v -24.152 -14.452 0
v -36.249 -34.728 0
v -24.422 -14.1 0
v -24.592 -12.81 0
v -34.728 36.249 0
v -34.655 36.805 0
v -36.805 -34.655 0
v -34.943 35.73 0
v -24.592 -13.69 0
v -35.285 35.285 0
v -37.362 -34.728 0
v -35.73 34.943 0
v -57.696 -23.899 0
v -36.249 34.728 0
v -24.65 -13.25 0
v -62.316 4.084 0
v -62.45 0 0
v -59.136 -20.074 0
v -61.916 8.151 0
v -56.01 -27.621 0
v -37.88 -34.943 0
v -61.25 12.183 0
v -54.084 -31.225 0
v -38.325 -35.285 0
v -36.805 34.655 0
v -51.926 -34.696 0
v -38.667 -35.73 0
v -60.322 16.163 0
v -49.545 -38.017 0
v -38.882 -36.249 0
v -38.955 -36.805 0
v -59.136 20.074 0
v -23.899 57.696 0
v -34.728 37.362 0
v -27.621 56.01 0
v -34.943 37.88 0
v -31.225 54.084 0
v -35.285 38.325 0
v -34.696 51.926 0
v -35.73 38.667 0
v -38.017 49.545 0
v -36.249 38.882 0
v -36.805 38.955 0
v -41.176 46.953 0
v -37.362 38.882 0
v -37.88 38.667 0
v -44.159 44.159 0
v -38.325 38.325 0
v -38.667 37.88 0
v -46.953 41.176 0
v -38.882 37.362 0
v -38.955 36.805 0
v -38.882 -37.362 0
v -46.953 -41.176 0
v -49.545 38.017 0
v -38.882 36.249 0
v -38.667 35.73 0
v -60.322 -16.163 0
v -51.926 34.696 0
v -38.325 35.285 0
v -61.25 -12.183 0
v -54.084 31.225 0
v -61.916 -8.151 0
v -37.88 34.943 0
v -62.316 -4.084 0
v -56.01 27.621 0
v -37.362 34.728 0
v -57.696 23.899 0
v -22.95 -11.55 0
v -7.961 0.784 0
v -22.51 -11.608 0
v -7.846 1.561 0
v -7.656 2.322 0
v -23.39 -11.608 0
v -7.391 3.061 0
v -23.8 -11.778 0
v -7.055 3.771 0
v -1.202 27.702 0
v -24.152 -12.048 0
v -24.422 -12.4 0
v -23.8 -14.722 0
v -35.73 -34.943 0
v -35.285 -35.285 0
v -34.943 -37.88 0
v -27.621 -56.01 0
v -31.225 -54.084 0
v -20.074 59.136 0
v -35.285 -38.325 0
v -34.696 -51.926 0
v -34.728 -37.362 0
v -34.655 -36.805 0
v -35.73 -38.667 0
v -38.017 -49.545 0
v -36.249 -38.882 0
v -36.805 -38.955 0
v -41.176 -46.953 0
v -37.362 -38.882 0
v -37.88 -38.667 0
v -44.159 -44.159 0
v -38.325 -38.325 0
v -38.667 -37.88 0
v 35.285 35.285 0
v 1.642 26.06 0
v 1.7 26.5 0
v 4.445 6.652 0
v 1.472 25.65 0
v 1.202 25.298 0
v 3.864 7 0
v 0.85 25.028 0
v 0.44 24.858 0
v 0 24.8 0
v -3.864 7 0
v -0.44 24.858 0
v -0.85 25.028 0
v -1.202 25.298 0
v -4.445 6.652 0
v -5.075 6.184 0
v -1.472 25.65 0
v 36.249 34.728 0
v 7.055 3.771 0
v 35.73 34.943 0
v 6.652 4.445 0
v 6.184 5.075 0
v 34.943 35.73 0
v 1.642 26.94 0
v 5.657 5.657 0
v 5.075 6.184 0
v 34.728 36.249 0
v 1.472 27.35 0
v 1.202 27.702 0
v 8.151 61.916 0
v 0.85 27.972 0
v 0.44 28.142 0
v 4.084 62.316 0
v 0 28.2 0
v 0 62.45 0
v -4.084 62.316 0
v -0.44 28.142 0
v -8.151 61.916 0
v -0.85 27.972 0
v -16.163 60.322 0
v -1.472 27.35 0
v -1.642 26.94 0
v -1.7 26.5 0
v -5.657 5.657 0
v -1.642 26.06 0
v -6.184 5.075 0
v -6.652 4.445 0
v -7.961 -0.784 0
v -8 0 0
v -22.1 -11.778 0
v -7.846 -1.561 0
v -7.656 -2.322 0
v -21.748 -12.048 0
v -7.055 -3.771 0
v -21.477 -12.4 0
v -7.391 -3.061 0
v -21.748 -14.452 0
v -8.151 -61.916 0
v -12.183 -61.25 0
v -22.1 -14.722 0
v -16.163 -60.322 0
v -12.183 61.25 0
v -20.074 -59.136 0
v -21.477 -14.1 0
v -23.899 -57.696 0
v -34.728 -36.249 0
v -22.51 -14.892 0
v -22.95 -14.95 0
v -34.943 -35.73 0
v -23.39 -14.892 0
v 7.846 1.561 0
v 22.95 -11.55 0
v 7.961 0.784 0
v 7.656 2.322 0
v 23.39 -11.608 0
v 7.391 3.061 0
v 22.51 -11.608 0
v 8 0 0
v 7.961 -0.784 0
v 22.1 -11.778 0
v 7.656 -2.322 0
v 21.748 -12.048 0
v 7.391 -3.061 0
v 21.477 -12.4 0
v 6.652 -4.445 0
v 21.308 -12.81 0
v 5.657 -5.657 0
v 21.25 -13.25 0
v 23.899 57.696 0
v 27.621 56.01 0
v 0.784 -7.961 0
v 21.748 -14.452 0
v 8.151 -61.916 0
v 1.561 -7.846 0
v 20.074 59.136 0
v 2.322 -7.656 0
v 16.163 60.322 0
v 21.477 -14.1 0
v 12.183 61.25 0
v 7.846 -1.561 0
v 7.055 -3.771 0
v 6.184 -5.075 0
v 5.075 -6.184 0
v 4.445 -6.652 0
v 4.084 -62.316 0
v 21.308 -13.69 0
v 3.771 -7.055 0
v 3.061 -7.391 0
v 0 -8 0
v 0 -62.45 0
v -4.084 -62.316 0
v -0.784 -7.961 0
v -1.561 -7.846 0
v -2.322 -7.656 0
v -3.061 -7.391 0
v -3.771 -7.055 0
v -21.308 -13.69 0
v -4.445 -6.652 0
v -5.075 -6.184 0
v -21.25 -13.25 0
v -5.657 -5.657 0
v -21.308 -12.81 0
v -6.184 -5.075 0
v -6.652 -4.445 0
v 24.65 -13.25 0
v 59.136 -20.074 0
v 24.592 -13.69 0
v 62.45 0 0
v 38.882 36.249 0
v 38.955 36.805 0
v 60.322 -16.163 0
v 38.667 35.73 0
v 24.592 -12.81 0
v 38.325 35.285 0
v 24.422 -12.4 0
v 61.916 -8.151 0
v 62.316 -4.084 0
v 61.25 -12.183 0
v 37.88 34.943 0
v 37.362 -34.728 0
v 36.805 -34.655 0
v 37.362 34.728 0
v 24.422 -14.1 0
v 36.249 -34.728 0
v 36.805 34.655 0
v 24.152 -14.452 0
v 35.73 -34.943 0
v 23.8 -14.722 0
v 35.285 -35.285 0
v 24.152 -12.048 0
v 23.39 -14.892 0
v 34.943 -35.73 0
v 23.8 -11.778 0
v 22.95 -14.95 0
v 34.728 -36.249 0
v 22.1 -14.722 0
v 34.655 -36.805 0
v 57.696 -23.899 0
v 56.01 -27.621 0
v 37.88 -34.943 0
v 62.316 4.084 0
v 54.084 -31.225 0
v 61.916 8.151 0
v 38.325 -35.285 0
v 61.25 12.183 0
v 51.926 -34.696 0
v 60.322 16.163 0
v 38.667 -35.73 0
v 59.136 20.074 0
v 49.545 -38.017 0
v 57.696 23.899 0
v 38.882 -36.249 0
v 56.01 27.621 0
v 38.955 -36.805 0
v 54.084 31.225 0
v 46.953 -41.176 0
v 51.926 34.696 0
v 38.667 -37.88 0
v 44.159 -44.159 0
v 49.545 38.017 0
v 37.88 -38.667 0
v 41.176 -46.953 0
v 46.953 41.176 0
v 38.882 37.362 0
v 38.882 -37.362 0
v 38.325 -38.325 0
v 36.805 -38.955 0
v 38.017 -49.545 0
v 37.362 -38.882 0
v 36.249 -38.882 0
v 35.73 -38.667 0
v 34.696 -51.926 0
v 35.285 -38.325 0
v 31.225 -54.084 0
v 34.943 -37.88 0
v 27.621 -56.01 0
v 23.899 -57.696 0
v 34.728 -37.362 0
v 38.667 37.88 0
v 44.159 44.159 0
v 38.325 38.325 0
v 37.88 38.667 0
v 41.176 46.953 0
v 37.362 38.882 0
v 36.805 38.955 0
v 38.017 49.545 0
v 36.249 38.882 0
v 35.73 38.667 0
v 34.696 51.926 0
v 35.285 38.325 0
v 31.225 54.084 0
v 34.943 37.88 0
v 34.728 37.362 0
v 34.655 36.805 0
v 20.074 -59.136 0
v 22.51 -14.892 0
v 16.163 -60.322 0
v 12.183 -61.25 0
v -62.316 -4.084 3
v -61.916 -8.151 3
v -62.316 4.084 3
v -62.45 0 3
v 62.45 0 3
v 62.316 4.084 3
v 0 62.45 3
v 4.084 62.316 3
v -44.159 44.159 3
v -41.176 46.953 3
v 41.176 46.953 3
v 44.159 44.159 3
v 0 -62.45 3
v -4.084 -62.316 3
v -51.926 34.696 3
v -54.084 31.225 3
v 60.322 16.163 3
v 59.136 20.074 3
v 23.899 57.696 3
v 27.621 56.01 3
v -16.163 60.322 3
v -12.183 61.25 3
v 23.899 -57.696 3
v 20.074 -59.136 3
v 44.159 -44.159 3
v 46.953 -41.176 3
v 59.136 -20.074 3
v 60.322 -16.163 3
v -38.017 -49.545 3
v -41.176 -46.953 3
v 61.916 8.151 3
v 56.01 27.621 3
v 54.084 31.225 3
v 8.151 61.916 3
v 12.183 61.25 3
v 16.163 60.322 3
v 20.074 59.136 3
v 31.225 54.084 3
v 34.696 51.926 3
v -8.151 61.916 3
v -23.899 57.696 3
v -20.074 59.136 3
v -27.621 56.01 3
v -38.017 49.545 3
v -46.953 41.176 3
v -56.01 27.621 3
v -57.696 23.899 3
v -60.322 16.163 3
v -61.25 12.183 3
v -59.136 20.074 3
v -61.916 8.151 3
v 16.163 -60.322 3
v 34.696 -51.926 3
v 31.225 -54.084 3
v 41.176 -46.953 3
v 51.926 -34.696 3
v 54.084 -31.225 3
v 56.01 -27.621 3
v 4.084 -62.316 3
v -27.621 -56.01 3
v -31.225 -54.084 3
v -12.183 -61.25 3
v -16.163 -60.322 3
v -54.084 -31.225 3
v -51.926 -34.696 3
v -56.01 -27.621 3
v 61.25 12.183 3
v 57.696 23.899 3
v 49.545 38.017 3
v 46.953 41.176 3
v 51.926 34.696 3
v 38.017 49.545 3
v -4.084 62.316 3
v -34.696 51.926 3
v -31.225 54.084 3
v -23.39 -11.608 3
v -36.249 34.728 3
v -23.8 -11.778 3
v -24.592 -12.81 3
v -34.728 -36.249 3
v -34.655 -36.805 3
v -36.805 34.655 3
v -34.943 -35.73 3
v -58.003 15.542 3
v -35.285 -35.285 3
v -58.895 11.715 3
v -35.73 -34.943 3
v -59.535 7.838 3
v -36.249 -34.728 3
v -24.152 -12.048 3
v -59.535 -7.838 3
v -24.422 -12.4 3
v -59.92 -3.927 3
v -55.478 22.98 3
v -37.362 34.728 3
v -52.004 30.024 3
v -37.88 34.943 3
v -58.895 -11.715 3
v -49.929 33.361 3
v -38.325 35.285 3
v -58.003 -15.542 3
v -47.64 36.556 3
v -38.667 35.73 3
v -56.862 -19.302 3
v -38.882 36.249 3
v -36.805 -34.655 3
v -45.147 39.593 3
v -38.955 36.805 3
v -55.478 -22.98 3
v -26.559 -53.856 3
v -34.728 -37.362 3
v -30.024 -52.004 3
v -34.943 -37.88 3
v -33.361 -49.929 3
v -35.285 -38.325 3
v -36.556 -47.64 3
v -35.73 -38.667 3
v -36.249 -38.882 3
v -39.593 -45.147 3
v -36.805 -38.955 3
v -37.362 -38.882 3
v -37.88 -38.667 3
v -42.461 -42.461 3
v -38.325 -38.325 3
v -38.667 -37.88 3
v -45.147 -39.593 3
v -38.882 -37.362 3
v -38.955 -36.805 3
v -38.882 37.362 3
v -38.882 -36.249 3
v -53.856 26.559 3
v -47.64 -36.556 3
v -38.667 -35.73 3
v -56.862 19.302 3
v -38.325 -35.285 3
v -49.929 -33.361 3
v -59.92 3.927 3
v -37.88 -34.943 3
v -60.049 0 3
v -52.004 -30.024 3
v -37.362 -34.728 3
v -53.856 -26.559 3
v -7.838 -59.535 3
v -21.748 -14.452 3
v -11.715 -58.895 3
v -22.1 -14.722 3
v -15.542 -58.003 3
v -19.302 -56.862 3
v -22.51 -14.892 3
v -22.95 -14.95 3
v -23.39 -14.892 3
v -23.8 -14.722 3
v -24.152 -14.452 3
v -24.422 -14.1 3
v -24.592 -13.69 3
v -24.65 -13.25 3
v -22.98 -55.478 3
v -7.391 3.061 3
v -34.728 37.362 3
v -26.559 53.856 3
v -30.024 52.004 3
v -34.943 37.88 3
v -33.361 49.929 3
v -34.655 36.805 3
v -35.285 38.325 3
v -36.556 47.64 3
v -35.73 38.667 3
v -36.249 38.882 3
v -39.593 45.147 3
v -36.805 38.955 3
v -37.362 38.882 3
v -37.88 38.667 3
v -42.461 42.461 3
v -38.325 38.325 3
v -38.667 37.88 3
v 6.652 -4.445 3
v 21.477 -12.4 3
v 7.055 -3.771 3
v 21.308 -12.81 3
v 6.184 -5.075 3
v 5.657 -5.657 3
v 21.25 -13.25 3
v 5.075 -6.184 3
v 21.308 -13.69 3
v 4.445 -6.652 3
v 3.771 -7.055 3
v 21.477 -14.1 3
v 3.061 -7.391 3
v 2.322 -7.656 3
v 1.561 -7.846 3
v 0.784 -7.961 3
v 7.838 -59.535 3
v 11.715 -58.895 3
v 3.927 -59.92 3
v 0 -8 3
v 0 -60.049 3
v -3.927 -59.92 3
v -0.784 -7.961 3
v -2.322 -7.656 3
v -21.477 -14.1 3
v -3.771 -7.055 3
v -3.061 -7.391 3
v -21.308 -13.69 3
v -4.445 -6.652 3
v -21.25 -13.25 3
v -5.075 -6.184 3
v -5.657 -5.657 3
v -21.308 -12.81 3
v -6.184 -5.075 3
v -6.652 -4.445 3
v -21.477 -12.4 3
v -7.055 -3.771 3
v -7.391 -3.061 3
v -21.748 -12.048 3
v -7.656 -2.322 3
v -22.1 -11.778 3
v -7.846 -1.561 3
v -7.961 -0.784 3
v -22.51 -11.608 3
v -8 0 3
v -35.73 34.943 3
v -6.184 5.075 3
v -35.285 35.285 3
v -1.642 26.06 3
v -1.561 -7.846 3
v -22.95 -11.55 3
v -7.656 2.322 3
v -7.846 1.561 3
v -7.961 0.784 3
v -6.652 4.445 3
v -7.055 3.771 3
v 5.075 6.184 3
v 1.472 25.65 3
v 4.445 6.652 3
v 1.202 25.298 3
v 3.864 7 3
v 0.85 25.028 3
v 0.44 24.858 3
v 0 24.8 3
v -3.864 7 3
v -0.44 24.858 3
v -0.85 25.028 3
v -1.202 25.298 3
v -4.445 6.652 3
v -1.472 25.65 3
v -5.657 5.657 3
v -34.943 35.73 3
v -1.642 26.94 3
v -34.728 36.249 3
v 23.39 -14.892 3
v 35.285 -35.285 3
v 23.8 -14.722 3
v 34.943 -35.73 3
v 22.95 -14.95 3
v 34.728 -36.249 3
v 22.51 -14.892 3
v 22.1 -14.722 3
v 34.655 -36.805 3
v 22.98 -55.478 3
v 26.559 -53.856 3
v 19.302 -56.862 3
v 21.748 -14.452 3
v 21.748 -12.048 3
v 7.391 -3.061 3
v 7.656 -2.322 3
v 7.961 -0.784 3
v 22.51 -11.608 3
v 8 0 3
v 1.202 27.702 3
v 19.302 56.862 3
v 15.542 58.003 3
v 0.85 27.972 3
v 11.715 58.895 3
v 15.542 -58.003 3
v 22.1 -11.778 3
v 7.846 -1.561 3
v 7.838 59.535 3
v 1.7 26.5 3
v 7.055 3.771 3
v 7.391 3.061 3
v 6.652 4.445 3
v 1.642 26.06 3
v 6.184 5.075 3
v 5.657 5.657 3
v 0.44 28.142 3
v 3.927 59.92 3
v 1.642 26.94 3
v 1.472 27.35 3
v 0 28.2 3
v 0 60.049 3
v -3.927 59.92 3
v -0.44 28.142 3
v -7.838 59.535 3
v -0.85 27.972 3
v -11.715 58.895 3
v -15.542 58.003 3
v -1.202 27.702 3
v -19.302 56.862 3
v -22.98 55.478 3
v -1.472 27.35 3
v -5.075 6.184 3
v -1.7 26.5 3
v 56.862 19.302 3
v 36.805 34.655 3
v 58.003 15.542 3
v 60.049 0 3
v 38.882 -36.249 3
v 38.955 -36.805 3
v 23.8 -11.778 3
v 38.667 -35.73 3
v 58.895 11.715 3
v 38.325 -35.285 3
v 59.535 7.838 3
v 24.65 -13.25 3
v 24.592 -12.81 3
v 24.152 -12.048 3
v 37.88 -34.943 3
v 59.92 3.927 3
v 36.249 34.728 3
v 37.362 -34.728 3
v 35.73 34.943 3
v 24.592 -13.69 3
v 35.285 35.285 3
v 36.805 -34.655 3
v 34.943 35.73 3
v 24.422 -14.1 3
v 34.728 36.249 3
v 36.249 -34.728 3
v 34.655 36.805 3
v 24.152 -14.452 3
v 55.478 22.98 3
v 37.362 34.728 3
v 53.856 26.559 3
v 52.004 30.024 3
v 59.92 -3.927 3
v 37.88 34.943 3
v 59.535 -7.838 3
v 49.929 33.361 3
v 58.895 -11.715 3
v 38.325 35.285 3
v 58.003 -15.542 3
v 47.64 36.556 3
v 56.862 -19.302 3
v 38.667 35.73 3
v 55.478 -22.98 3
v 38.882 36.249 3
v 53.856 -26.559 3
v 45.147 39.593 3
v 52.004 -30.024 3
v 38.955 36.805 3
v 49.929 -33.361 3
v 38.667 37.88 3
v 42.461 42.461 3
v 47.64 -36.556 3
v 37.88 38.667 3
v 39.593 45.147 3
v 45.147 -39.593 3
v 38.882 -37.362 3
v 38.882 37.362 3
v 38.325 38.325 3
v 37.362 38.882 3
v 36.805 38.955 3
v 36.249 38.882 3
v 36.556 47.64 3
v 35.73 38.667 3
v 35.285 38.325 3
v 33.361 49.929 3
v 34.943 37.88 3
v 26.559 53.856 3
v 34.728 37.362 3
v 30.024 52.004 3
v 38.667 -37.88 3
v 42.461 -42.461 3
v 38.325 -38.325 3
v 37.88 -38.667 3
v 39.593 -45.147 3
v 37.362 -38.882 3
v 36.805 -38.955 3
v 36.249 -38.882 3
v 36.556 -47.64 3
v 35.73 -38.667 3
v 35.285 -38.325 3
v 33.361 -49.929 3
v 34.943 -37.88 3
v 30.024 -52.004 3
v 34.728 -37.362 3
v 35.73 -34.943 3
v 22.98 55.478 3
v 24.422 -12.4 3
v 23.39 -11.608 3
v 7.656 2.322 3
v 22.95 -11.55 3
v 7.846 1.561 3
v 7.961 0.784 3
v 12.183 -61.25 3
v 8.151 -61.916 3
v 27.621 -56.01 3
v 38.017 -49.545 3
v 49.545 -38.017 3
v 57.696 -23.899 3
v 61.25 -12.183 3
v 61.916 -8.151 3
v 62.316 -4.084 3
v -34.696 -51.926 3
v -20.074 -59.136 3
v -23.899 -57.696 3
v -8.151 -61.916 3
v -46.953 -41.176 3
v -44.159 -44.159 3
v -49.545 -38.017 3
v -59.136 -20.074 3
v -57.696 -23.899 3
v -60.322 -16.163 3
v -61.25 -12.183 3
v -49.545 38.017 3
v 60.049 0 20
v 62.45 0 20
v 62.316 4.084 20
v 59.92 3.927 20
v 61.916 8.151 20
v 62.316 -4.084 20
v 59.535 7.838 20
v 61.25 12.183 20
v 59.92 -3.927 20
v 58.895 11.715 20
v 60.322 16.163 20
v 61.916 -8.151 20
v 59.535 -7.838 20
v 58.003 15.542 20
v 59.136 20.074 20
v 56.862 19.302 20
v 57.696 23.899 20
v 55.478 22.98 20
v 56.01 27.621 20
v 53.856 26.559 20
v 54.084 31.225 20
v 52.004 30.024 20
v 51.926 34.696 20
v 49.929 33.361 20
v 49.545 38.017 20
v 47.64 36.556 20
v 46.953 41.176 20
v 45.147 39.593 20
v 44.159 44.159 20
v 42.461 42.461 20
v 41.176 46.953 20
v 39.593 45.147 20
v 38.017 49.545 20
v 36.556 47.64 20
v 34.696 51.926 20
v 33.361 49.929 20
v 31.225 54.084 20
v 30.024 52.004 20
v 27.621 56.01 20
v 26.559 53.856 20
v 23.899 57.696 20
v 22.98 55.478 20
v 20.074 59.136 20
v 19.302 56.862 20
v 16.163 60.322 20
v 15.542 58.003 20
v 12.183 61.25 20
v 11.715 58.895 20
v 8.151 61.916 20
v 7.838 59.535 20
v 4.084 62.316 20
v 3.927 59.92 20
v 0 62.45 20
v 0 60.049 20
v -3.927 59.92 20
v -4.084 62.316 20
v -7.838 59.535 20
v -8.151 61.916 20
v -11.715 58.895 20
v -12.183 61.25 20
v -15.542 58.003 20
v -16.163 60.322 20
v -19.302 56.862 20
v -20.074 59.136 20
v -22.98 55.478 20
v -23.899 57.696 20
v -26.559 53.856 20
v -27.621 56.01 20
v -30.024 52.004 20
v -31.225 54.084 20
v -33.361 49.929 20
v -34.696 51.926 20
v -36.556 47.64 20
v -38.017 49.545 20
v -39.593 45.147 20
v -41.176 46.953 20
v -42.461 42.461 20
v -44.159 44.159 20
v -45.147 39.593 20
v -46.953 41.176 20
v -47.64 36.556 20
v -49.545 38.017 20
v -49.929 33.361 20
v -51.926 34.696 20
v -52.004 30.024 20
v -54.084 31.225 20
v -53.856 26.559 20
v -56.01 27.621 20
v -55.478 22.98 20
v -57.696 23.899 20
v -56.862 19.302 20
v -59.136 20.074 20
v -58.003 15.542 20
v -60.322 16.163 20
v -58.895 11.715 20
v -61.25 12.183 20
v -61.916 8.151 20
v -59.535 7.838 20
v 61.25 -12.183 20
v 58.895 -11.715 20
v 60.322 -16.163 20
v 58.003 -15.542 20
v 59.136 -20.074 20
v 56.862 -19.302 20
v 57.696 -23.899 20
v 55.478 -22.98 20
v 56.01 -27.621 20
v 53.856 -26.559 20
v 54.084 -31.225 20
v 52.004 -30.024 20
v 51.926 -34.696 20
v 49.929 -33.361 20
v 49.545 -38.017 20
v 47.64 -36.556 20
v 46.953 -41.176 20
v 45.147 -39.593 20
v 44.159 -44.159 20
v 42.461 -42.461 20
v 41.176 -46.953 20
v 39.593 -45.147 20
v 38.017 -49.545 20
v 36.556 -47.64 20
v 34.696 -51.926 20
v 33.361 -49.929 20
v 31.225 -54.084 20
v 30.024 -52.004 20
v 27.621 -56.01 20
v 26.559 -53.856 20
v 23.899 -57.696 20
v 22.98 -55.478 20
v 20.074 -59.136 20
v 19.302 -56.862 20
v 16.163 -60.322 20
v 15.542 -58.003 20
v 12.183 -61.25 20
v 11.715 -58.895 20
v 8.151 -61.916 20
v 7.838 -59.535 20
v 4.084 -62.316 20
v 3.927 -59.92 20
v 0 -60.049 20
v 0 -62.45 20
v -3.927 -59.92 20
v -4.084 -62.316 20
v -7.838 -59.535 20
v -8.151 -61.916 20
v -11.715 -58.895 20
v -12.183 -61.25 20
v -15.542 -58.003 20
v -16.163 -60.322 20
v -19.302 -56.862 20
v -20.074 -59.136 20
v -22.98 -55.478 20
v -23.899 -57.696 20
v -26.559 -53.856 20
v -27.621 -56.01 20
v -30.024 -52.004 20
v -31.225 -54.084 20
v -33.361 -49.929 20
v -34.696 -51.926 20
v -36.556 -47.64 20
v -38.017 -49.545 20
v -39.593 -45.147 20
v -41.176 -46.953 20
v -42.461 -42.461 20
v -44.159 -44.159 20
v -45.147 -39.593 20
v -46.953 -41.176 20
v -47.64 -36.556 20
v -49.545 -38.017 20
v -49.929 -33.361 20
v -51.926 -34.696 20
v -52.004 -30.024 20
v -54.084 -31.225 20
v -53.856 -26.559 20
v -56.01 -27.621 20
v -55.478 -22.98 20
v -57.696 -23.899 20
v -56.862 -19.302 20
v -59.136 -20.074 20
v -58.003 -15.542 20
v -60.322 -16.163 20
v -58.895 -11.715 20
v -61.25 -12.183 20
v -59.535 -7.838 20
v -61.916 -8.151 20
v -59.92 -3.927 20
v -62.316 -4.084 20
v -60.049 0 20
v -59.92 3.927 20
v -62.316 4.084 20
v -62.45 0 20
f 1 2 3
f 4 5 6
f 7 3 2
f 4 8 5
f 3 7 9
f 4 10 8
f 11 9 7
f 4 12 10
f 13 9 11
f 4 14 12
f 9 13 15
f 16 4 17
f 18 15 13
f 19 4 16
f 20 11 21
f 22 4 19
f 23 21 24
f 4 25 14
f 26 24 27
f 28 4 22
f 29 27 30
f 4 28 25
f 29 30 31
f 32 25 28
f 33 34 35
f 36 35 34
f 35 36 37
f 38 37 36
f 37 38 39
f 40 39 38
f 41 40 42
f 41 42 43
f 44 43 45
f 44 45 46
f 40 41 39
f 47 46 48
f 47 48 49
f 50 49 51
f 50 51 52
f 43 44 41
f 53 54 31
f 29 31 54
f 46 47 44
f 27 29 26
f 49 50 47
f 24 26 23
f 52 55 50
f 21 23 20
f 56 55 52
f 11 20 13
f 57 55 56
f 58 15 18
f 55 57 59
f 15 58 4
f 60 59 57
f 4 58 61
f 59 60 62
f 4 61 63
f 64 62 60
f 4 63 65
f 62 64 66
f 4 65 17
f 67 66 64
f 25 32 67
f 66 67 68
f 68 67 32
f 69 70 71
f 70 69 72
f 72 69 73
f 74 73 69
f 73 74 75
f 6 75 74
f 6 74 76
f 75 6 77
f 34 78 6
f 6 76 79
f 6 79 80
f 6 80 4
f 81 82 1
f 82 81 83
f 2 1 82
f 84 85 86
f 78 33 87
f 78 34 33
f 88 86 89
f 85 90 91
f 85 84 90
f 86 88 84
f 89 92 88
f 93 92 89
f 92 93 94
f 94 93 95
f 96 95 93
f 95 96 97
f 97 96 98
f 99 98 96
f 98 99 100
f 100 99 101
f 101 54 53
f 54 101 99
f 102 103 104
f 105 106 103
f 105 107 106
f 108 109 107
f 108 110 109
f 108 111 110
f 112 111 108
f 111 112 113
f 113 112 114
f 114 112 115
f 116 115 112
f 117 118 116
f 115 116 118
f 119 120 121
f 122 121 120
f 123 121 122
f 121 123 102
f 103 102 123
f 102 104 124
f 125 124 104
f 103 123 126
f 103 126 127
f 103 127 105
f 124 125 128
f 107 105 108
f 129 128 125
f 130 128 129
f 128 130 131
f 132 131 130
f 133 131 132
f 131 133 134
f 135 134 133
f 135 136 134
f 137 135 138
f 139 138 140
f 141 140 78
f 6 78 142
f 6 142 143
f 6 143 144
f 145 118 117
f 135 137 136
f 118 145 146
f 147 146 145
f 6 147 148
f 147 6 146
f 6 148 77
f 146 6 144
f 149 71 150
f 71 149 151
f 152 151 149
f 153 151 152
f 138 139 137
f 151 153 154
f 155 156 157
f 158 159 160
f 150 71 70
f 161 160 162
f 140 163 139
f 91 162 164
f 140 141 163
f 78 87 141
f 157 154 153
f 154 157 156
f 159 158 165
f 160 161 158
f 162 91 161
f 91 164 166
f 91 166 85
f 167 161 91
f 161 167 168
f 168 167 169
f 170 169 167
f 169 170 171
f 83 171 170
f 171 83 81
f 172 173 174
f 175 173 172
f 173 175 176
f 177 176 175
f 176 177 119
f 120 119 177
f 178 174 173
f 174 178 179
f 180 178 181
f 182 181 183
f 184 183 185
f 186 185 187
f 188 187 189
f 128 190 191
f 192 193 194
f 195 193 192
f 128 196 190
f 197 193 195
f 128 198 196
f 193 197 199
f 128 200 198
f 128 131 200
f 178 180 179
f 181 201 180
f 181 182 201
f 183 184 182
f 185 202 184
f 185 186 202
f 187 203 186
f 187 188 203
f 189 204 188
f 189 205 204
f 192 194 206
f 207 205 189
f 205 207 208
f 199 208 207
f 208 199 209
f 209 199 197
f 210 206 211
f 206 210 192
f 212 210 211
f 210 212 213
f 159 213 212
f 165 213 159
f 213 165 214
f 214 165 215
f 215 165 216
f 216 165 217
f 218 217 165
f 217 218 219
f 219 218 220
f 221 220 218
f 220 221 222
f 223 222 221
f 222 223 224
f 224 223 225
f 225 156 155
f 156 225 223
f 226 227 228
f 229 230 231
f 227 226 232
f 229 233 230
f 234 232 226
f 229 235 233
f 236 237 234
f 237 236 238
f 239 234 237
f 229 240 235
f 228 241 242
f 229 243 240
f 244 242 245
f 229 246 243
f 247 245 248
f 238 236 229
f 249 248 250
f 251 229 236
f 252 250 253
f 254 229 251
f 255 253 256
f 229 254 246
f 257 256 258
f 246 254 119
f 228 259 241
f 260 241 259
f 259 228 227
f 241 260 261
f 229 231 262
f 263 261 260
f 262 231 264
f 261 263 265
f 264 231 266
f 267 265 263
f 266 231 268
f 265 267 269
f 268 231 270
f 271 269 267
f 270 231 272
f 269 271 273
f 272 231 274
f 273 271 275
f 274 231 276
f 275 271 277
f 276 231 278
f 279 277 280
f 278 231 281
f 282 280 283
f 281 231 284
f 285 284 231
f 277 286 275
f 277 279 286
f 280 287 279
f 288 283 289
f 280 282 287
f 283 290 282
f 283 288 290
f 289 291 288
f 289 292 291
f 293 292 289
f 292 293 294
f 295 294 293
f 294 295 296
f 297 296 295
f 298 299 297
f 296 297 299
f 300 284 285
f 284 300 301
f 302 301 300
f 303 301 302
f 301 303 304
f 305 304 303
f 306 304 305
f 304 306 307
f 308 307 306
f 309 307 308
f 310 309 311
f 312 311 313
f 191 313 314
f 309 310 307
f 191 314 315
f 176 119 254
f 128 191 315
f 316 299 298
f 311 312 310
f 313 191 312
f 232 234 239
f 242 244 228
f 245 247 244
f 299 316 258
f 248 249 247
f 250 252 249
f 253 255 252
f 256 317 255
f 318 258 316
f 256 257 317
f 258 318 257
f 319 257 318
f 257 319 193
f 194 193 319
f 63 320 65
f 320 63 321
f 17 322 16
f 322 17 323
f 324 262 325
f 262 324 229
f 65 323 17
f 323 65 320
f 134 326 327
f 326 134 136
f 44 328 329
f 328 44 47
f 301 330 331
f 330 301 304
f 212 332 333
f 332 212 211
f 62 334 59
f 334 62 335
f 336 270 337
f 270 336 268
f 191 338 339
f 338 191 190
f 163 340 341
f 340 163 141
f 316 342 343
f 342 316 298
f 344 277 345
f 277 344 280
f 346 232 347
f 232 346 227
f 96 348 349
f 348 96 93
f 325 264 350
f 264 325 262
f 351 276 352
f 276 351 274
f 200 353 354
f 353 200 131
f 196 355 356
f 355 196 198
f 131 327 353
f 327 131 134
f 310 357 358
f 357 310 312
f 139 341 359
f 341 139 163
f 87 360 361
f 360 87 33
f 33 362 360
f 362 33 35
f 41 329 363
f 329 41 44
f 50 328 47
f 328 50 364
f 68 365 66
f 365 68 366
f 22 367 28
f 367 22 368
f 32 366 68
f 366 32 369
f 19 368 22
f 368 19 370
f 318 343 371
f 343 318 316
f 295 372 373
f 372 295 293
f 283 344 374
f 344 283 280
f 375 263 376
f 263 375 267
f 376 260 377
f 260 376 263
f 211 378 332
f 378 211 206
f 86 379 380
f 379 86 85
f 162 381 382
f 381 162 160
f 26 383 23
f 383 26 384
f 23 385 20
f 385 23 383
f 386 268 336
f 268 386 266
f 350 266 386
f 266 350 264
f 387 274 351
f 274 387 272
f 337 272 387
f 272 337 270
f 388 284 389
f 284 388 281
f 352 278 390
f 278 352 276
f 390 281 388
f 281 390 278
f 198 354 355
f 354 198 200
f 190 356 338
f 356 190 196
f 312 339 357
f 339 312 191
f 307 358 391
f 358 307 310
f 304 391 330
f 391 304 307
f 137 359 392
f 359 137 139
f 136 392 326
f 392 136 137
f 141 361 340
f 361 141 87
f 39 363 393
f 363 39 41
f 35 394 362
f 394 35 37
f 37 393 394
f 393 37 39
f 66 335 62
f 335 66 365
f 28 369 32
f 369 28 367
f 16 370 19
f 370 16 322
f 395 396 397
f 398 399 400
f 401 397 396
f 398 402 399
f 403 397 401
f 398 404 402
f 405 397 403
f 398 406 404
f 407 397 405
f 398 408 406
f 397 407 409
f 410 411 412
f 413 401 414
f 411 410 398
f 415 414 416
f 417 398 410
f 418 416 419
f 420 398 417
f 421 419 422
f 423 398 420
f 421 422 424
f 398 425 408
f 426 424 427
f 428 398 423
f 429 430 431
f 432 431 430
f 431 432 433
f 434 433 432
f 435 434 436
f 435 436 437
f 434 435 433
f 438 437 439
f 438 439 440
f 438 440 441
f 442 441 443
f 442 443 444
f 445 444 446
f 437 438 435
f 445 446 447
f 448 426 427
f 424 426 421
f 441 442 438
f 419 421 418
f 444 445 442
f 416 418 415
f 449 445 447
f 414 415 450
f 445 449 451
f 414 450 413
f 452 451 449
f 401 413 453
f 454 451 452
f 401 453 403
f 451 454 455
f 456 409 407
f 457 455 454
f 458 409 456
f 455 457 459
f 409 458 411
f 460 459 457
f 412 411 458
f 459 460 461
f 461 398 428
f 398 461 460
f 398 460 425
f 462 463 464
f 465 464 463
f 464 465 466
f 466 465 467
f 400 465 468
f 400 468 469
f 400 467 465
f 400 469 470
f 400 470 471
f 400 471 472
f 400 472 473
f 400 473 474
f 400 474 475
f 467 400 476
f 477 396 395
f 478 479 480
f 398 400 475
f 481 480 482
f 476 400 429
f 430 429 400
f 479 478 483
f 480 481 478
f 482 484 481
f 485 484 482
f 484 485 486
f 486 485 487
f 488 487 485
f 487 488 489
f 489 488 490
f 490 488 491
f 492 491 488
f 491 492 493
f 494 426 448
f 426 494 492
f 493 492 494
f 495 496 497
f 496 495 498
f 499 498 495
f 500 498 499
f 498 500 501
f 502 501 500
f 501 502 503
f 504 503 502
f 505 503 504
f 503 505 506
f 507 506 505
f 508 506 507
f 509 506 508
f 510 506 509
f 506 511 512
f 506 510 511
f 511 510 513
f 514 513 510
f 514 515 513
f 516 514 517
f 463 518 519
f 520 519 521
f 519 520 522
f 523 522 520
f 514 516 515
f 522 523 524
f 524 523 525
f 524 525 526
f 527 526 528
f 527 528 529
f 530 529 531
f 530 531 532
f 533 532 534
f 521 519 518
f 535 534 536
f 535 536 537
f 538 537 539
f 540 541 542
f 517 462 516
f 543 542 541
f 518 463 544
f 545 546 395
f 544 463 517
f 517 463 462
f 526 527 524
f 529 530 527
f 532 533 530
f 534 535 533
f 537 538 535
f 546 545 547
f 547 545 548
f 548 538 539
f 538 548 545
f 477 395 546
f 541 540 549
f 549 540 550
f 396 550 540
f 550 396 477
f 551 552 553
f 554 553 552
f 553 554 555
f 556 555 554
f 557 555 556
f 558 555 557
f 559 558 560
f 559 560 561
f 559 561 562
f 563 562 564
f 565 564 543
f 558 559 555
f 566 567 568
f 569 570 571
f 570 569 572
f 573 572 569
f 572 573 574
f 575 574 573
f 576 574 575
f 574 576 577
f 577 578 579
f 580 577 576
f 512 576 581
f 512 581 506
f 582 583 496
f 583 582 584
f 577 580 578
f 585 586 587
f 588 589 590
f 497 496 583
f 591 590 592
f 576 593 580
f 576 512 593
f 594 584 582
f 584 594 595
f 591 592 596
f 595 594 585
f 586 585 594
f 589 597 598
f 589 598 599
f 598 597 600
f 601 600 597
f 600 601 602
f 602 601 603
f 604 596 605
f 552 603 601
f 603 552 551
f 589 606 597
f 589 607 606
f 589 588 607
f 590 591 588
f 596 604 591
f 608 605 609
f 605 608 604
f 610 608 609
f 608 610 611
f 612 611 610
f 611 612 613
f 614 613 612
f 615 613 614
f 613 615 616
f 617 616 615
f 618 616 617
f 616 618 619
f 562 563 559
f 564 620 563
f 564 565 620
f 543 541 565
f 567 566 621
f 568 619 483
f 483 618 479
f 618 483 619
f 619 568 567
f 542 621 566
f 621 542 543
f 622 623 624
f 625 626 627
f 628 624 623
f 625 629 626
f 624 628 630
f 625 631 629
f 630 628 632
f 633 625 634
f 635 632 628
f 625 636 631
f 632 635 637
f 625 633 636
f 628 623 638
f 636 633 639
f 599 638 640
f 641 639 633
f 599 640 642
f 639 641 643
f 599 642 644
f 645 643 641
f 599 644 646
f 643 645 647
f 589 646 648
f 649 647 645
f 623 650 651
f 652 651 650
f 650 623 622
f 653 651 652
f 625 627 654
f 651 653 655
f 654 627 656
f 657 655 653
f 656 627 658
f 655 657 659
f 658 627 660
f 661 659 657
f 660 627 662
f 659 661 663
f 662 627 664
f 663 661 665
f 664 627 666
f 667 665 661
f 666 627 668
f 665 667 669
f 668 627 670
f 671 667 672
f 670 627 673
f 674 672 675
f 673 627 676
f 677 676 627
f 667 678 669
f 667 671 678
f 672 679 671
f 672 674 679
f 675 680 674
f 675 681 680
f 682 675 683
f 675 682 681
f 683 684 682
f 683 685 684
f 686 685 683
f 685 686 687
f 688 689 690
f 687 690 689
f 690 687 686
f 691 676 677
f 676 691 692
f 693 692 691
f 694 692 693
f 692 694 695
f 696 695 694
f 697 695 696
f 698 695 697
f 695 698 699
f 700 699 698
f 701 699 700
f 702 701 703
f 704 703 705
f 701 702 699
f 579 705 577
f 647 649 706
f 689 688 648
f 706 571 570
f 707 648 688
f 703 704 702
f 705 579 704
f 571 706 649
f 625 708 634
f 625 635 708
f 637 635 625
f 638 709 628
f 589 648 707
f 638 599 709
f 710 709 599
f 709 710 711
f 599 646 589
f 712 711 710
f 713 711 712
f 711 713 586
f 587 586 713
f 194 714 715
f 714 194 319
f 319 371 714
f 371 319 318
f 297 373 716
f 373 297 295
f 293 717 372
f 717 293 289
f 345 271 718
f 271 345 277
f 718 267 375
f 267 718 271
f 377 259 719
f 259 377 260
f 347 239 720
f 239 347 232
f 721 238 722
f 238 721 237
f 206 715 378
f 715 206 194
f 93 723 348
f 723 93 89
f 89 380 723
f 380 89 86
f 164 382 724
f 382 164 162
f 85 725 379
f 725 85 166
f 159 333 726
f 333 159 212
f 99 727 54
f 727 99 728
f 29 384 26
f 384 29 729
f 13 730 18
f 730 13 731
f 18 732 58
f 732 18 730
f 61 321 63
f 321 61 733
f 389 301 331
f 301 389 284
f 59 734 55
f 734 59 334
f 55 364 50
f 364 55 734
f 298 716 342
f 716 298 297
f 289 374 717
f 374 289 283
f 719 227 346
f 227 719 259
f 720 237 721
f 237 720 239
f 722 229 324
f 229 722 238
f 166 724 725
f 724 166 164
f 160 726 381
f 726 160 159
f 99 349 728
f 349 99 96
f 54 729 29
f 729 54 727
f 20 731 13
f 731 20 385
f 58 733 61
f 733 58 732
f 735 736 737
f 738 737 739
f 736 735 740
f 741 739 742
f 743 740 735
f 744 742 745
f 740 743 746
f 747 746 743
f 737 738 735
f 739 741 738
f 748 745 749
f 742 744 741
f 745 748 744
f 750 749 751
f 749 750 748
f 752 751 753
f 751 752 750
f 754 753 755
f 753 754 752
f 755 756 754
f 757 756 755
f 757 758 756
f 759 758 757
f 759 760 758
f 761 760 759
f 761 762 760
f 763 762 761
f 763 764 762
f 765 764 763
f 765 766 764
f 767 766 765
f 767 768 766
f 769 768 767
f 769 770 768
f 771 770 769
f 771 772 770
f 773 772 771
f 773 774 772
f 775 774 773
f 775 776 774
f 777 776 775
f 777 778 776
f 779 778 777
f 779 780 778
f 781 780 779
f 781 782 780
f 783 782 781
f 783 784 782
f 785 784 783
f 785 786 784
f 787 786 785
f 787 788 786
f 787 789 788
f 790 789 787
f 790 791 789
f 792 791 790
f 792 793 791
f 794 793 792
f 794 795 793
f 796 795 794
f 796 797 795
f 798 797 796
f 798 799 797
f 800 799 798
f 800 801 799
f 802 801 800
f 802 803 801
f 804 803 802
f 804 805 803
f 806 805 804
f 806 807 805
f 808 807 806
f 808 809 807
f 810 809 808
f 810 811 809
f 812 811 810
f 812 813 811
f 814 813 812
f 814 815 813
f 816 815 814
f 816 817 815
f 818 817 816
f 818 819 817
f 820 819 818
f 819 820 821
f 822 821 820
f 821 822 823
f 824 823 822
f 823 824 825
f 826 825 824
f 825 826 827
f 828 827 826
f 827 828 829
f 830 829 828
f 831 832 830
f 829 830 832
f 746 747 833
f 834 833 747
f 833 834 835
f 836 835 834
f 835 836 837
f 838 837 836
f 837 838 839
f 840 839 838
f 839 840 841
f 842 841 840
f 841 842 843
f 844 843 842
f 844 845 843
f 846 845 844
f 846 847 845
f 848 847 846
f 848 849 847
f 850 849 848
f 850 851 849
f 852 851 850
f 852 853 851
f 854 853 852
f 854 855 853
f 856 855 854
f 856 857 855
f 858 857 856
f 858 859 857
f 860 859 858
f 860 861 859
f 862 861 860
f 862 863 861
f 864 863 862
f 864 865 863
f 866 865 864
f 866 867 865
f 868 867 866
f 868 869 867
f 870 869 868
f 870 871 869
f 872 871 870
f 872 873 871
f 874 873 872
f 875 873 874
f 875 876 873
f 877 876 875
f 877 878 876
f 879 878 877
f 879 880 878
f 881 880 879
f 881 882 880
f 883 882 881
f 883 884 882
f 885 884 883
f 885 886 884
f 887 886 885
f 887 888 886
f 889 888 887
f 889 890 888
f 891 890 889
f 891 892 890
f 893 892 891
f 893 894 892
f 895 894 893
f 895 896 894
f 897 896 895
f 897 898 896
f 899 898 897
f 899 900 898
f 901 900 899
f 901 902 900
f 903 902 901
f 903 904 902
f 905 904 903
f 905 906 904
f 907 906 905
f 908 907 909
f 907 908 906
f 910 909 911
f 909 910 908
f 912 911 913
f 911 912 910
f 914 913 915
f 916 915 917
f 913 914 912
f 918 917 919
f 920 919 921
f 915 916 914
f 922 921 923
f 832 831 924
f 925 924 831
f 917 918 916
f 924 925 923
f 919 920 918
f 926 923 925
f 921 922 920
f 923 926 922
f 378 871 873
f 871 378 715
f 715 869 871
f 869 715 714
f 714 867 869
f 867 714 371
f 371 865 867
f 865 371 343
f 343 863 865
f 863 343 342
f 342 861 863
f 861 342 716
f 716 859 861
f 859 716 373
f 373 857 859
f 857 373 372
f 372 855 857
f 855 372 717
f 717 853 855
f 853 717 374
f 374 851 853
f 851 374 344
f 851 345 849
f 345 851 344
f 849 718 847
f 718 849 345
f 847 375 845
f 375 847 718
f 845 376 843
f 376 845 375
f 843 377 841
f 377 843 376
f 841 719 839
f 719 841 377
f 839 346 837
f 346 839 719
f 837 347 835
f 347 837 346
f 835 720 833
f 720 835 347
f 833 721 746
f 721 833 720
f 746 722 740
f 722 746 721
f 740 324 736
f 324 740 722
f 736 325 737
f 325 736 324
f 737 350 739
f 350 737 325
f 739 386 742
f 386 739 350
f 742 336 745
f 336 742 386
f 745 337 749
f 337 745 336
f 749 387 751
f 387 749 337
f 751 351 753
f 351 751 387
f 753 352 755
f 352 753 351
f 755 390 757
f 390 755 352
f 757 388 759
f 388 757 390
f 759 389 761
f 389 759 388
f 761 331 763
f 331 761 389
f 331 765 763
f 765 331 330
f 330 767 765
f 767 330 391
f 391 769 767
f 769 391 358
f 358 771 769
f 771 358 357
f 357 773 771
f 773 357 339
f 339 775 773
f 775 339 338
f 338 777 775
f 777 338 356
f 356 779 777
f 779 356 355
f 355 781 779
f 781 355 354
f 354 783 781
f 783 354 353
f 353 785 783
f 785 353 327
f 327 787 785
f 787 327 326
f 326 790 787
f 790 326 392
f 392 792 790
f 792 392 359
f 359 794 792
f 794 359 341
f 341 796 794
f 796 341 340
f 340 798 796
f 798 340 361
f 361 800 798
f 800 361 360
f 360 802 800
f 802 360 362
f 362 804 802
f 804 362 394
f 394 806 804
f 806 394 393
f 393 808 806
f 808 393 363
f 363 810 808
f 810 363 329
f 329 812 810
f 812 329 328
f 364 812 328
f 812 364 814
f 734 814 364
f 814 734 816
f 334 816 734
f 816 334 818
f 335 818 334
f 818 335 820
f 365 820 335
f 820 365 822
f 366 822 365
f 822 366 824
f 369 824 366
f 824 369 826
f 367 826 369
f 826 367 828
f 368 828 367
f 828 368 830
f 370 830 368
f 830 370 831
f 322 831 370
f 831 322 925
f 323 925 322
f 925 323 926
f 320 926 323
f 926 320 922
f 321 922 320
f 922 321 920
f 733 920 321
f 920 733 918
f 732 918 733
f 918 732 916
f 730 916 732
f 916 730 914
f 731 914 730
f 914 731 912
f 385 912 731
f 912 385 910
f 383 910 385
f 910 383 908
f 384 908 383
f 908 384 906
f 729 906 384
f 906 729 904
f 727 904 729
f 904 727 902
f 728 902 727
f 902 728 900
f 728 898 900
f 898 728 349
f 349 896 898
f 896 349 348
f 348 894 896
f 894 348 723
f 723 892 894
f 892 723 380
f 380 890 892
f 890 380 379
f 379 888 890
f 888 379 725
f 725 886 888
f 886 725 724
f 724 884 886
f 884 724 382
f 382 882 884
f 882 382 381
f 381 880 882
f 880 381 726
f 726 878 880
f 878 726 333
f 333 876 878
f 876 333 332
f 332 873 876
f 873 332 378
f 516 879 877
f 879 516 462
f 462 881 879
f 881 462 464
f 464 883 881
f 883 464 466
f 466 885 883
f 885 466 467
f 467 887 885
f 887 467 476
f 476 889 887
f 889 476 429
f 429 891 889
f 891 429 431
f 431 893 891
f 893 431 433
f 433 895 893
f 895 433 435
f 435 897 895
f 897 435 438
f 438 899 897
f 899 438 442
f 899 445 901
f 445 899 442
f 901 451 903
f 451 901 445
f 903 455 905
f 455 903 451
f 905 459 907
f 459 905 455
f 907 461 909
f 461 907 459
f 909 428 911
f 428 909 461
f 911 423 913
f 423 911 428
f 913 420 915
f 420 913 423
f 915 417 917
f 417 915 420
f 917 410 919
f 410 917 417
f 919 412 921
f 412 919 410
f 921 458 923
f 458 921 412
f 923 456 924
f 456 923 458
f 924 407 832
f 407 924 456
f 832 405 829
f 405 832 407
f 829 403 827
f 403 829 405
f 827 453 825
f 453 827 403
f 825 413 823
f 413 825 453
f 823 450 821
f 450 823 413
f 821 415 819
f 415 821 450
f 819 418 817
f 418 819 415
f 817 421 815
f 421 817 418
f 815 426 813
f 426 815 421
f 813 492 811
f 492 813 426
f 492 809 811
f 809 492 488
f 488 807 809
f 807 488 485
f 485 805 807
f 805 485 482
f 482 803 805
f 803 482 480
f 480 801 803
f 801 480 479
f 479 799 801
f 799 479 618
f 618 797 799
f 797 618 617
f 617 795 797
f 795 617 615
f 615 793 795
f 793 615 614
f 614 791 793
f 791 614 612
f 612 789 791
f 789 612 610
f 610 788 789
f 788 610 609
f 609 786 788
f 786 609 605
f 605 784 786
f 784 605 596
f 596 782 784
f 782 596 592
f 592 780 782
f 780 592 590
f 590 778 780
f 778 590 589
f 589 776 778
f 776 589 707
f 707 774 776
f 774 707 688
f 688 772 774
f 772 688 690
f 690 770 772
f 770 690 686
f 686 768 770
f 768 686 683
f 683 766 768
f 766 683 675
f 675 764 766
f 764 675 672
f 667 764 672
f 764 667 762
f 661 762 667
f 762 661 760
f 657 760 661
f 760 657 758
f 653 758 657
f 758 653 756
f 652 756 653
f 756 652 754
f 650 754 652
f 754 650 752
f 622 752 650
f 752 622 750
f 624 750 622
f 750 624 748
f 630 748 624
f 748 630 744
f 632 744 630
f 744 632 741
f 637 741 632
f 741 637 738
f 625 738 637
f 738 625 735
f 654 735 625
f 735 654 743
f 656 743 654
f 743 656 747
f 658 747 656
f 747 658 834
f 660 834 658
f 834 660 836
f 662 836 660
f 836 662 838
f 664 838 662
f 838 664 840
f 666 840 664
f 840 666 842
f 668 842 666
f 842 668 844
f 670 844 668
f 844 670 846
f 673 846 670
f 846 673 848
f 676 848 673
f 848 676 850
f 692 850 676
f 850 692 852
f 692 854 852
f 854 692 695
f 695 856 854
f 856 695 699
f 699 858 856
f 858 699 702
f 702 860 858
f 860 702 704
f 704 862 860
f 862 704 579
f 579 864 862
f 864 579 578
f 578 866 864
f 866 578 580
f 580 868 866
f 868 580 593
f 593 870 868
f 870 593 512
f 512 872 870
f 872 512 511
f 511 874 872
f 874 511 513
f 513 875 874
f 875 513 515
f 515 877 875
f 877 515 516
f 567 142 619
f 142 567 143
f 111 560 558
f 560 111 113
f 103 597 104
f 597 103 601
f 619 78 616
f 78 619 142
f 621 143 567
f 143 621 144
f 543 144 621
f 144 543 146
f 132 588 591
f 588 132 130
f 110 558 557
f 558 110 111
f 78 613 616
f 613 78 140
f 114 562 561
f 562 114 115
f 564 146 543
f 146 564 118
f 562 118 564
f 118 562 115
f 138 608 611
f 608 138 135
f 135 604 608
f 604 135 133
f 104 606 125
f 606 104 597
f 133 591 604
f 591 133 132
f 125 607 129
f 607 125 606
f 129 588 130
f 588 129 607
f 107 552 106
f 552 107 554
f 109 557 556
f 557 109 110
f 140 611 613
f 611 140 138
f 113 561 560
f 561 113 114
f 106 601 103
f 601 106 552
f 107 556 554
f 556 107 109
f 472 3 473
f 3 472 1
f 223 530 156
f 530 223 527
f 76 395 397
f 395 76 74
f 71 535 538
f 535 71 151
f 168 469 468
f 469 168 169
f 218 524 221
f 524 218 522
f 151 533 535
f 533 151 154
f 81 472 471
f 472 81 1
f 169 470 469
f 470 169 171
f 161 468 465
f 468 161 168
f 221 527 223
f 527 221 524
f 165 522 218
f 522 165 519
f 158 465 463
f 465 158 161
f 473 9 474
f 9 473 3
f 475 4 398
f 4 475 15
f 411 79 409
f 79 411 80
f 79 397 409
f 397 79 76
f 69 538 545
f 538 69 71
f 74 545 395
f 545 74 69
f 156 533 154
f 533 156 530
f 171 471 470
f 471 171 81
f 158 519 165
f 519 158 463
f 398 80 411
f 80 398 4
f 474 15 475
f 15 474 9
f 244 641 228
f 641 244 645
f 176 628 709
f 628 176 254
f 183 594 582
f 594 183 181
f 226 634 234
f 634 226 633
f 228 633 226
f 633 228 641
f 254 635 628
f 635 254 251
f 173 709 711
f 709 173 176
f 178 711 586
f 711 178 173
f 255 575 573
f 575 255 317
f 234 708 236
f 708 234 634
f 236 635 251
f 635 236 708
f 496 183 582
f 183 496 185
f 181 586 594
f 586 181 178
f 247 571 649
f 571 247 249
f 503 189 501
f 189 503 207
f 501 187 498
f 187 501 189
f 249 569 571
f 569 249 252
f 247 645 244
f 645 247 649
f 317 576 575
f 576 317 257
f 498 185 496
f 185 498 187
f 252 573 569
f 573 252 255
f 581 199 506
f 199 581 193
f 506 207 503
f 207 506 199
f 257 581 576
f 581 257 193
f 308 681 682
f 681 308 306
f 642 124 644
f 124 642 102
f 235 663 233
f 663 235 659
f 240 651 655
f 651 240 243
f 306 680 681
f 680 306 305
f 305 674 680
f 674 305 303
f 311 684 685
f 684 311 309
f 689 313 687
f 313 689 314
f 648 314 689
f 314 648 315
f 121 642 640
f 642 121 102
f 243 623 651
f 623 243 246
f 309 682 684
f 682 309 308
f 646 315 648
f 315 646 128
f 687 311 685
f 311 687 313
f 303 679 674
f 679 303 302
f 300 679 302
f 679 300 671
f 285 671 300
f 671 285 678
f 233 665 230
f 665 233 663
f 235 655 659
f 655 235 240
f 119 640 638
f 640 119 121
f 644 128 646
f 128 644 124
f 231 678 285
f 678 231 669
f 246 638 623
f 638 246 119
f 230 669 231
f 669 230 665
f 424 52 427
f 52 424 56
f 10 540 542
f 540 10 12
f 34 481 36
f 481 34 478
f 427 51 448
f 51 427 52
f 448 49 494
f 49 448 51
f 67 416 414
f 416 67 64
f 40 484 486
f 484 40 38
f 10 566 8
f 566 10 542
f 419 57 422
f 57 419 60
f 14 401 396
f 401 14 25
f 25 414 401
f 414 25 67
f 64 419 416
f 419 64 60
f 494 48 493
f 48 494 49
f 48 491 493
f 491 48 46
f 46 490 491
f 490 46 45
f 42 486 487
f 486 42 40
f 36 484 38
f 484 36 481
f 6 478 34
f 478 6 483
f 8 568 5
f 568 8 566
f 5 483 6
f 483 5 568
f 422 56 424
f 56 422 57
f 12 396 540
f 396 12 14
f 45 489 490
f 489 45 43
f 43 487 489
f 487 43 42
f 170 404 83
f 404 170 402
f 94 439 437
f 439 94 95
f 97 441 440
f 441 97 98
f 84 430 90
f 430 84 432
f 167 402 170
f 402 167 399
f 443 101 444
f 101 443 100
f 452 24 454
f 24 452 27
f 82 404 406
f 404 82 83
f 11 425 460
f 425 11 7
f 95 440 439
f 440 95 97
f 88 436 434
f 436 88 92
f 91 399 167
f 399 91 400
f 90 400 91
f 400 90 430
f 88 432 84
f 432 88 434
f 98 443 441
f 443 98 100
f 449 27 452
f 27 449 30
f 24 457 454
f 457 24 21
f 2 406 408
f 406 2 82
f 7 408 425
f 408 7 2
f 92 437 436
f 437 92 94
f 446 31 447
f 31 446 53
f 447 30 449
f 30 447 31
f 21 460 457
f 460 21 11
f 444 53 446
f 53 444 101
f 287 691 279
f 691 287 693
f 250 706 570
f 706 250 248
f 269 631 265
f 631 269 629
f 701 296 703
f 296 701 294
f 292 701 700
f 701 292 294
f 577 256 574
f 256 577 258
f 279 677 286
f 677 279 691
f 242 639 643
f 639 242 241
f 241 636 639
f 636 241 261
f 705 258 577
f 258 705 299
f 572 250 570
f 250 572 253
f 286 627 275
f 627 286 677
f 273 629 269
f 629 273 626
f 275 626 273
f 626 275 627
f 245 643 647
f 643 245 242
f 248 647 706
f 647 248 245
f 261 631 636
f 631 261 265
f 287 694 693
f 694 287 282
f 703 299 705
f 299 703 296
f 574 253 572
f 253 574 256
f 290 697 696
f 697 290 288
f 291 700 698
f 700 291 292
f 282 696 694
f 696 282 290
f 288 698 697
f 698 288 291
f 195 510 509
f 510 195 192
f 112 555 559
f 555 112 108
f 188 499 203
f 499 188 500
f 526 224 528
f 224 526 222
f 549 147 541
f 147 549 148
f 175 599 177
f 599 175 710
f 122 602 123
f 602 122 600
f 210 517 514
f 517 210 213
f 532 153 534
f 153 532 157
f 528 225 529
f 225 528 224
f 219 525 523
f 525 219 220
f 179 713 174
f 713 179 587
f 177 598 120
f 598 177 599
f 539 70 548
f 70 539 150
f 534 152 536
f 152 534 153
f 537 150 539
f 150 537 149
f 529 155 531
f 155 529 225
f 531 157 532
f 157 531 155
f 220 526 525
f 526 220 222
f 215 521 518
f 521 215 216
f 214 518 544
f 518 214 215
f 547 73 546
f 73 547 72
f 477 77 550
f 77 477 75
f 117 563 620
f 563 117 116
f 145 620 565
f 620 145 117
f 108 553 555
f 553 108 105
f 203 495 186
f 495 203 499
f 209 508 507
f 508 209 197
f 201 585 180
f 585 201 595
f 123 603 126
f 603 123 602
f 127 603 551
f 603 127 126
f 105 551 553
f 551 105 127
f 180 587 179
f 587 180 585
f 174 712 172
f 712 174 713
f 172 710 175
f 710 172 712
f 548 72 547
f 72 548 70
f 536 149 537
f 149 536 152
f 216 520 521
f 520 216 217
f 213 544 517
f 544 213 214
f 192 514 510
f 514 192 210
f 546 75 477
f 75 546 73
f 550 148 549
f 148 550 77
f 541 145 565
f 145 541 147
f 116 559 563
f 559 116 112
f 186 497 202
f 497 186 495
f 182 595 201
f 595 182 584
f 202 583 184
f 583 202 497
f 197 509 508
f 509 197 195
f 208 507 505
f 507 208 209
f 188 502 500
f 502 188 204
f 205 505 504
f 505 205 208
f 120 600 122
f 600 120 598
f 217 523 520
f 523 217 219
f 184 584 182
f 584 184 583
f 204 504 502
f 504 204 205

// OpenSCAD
// =============================================================================
// helix_reflector_cup.scad  -  Cup / ground-plane former for the 2.4 GHz helix
// Purpose:        Printed former for the helix ground plane (cup): disc + rim,
//                 N-female panel connector hole (16 mm D-flat), 3 x M3 bolt circle
//                 for helix_former.scad, 4 x M4 mounting holes. Optional second
//                 position for a 40 mm LNB collar next to the helix (dual-band
//                 feed arrangement as in the EA5EN course photos).
//                 Diameter = cup_d_lambda * lambda (0.8-1.1 lambda; lambda = 124.9 mm).
// Print settings: PETG or ASA (outdoor / UV). 4 perimeters, 30 % infill,
//                 0.2 mm layers, NO supports. Print disc side down.
// RF note:        A printed cup is NOT a reflector: cover the inside of the disc
//                 and the rim with adhesive copper or aluminium tape (continuous,
//                 overlap the joints, solder copper tape to the N connector body).
//                 NEVER print it in carbon-fibre or metal-filled filament near
//                 the feed: conductive/lossy at 2.4 / 10 GHz.
//                 With lnb_mode = 1 the LNB metal body disturbs the helix pattern:
//                 verify the squint and RHCP axial ratio on your own dish.
// Licence:        GPL-3.0-or-later (CERN-OHL-S-2.0 optional for the hardware design).
// Units:          millimetres.
// =============================================================================

freq_mhz      = 2400.25;
cup_d_lambda  = 1.0;     // 0.8-1.1; >= 0.75 lambda is the minimum for a helix
base_t        = 3;       // disc thickness
rim_h         = 20;      // rim height (about 0.16 lambda)
rim_t         = 2.4;     // rim wall
n_hole_d      = 16;      // N-female panel connector hole
n_flat        = 15;      // distance across the D-flat (check your connector)
helix_bolt_r  = 26.5;    // M3 circle for the helix foot (matches helix_former.scad)
helix_bolt_d  = 3.4;
mount_d       = 4.3;     // M4 clearance
mount_count   = 4;
lnb_mode      = 0;       // 0 = helix only, 1 = add a 40 mm LNB collar position
lnb_d         = 40;      // LNB neck diameter
lnb_clr       = 0.3;
lnb_ring_r    = 26;      // outer radius of the LNB collar boss
lnb_ring_h    = 14;
lnb_dx        = 78;      // distance helix axis -> LNB axis (mode 1)

$fn = 96;

lambda = 299792.458 / freq_mhz;
cup_r  = cup_d_lambda * lambda / 2;
mount_r = cup_r - rim_t - 8;

echo(str("cup diameter=", 2 * cup_r, " mm (", cup_d_lambda, " lambda)"));

module outline() {
    hull() {
        circle(r = cup_r);
        if (lnb_mode == 1) translate([lnb_dx, 0]) circle(r = lnb_ring_r + 4);
    }
}

module n_hole() {
    // D-shaped hole: circle with one flat, n_flat across from the opposite side
    intersection() {
        circle(d = n_hole_d, $fn = 64);
        translate([-n_hole_d, -n_hole_d]) square([2 * n_hole_d, n_flat + n_hole_d / 2]);
    }
}

difference() {
    union() {
        linear_extrude(height = base_t) outline();
        linear_extrude(height = rim_h)
            difference() {
                outline();
                offset(delta = -rim_t) outline();
            }
        if (lnb_mode == 1)
            translate([lnb_dx, 0, 0]) cylinder(r = lnb_ring_r, h = base_t + lnb_ring_h);
    }
    translate([0, 0, -1]) linear_extrude(height = base_t + 2) n_hole();
    for (a = [0 : 120 : 359])
        rotate([0, 0, a + 90]) translate([helix_bolt_r, 0, -1]) cylinder(d = helix_bolt_d, h = base_t + 2, $fn = 24);
    for (i = [0 : mount_count - 1])
        rotate([0, 0, 45 + i * 360 / mount_count]) translate([mount_r, 0, -1]) cylinder(d = mount_d, h = base_t + 2, $fn = 24);
    if (lnb_mode == 1) {
        translate([lnb_dx, 0, -1]) cylinder(d = lnb_d + lnb_clr, h = base_t + lnb_ring_h + 2);
        // two M4 set screws at 90 degrees to hold the collar
        for (a = [0, 90])
            translate([lnb_dx, 0, base_t + lnb_ring_h / 2])
                rotate([0, 90, a]) cylinder(d = 3.3, h = lnb_ring_r + 2, $fn = 24);
    }
}
